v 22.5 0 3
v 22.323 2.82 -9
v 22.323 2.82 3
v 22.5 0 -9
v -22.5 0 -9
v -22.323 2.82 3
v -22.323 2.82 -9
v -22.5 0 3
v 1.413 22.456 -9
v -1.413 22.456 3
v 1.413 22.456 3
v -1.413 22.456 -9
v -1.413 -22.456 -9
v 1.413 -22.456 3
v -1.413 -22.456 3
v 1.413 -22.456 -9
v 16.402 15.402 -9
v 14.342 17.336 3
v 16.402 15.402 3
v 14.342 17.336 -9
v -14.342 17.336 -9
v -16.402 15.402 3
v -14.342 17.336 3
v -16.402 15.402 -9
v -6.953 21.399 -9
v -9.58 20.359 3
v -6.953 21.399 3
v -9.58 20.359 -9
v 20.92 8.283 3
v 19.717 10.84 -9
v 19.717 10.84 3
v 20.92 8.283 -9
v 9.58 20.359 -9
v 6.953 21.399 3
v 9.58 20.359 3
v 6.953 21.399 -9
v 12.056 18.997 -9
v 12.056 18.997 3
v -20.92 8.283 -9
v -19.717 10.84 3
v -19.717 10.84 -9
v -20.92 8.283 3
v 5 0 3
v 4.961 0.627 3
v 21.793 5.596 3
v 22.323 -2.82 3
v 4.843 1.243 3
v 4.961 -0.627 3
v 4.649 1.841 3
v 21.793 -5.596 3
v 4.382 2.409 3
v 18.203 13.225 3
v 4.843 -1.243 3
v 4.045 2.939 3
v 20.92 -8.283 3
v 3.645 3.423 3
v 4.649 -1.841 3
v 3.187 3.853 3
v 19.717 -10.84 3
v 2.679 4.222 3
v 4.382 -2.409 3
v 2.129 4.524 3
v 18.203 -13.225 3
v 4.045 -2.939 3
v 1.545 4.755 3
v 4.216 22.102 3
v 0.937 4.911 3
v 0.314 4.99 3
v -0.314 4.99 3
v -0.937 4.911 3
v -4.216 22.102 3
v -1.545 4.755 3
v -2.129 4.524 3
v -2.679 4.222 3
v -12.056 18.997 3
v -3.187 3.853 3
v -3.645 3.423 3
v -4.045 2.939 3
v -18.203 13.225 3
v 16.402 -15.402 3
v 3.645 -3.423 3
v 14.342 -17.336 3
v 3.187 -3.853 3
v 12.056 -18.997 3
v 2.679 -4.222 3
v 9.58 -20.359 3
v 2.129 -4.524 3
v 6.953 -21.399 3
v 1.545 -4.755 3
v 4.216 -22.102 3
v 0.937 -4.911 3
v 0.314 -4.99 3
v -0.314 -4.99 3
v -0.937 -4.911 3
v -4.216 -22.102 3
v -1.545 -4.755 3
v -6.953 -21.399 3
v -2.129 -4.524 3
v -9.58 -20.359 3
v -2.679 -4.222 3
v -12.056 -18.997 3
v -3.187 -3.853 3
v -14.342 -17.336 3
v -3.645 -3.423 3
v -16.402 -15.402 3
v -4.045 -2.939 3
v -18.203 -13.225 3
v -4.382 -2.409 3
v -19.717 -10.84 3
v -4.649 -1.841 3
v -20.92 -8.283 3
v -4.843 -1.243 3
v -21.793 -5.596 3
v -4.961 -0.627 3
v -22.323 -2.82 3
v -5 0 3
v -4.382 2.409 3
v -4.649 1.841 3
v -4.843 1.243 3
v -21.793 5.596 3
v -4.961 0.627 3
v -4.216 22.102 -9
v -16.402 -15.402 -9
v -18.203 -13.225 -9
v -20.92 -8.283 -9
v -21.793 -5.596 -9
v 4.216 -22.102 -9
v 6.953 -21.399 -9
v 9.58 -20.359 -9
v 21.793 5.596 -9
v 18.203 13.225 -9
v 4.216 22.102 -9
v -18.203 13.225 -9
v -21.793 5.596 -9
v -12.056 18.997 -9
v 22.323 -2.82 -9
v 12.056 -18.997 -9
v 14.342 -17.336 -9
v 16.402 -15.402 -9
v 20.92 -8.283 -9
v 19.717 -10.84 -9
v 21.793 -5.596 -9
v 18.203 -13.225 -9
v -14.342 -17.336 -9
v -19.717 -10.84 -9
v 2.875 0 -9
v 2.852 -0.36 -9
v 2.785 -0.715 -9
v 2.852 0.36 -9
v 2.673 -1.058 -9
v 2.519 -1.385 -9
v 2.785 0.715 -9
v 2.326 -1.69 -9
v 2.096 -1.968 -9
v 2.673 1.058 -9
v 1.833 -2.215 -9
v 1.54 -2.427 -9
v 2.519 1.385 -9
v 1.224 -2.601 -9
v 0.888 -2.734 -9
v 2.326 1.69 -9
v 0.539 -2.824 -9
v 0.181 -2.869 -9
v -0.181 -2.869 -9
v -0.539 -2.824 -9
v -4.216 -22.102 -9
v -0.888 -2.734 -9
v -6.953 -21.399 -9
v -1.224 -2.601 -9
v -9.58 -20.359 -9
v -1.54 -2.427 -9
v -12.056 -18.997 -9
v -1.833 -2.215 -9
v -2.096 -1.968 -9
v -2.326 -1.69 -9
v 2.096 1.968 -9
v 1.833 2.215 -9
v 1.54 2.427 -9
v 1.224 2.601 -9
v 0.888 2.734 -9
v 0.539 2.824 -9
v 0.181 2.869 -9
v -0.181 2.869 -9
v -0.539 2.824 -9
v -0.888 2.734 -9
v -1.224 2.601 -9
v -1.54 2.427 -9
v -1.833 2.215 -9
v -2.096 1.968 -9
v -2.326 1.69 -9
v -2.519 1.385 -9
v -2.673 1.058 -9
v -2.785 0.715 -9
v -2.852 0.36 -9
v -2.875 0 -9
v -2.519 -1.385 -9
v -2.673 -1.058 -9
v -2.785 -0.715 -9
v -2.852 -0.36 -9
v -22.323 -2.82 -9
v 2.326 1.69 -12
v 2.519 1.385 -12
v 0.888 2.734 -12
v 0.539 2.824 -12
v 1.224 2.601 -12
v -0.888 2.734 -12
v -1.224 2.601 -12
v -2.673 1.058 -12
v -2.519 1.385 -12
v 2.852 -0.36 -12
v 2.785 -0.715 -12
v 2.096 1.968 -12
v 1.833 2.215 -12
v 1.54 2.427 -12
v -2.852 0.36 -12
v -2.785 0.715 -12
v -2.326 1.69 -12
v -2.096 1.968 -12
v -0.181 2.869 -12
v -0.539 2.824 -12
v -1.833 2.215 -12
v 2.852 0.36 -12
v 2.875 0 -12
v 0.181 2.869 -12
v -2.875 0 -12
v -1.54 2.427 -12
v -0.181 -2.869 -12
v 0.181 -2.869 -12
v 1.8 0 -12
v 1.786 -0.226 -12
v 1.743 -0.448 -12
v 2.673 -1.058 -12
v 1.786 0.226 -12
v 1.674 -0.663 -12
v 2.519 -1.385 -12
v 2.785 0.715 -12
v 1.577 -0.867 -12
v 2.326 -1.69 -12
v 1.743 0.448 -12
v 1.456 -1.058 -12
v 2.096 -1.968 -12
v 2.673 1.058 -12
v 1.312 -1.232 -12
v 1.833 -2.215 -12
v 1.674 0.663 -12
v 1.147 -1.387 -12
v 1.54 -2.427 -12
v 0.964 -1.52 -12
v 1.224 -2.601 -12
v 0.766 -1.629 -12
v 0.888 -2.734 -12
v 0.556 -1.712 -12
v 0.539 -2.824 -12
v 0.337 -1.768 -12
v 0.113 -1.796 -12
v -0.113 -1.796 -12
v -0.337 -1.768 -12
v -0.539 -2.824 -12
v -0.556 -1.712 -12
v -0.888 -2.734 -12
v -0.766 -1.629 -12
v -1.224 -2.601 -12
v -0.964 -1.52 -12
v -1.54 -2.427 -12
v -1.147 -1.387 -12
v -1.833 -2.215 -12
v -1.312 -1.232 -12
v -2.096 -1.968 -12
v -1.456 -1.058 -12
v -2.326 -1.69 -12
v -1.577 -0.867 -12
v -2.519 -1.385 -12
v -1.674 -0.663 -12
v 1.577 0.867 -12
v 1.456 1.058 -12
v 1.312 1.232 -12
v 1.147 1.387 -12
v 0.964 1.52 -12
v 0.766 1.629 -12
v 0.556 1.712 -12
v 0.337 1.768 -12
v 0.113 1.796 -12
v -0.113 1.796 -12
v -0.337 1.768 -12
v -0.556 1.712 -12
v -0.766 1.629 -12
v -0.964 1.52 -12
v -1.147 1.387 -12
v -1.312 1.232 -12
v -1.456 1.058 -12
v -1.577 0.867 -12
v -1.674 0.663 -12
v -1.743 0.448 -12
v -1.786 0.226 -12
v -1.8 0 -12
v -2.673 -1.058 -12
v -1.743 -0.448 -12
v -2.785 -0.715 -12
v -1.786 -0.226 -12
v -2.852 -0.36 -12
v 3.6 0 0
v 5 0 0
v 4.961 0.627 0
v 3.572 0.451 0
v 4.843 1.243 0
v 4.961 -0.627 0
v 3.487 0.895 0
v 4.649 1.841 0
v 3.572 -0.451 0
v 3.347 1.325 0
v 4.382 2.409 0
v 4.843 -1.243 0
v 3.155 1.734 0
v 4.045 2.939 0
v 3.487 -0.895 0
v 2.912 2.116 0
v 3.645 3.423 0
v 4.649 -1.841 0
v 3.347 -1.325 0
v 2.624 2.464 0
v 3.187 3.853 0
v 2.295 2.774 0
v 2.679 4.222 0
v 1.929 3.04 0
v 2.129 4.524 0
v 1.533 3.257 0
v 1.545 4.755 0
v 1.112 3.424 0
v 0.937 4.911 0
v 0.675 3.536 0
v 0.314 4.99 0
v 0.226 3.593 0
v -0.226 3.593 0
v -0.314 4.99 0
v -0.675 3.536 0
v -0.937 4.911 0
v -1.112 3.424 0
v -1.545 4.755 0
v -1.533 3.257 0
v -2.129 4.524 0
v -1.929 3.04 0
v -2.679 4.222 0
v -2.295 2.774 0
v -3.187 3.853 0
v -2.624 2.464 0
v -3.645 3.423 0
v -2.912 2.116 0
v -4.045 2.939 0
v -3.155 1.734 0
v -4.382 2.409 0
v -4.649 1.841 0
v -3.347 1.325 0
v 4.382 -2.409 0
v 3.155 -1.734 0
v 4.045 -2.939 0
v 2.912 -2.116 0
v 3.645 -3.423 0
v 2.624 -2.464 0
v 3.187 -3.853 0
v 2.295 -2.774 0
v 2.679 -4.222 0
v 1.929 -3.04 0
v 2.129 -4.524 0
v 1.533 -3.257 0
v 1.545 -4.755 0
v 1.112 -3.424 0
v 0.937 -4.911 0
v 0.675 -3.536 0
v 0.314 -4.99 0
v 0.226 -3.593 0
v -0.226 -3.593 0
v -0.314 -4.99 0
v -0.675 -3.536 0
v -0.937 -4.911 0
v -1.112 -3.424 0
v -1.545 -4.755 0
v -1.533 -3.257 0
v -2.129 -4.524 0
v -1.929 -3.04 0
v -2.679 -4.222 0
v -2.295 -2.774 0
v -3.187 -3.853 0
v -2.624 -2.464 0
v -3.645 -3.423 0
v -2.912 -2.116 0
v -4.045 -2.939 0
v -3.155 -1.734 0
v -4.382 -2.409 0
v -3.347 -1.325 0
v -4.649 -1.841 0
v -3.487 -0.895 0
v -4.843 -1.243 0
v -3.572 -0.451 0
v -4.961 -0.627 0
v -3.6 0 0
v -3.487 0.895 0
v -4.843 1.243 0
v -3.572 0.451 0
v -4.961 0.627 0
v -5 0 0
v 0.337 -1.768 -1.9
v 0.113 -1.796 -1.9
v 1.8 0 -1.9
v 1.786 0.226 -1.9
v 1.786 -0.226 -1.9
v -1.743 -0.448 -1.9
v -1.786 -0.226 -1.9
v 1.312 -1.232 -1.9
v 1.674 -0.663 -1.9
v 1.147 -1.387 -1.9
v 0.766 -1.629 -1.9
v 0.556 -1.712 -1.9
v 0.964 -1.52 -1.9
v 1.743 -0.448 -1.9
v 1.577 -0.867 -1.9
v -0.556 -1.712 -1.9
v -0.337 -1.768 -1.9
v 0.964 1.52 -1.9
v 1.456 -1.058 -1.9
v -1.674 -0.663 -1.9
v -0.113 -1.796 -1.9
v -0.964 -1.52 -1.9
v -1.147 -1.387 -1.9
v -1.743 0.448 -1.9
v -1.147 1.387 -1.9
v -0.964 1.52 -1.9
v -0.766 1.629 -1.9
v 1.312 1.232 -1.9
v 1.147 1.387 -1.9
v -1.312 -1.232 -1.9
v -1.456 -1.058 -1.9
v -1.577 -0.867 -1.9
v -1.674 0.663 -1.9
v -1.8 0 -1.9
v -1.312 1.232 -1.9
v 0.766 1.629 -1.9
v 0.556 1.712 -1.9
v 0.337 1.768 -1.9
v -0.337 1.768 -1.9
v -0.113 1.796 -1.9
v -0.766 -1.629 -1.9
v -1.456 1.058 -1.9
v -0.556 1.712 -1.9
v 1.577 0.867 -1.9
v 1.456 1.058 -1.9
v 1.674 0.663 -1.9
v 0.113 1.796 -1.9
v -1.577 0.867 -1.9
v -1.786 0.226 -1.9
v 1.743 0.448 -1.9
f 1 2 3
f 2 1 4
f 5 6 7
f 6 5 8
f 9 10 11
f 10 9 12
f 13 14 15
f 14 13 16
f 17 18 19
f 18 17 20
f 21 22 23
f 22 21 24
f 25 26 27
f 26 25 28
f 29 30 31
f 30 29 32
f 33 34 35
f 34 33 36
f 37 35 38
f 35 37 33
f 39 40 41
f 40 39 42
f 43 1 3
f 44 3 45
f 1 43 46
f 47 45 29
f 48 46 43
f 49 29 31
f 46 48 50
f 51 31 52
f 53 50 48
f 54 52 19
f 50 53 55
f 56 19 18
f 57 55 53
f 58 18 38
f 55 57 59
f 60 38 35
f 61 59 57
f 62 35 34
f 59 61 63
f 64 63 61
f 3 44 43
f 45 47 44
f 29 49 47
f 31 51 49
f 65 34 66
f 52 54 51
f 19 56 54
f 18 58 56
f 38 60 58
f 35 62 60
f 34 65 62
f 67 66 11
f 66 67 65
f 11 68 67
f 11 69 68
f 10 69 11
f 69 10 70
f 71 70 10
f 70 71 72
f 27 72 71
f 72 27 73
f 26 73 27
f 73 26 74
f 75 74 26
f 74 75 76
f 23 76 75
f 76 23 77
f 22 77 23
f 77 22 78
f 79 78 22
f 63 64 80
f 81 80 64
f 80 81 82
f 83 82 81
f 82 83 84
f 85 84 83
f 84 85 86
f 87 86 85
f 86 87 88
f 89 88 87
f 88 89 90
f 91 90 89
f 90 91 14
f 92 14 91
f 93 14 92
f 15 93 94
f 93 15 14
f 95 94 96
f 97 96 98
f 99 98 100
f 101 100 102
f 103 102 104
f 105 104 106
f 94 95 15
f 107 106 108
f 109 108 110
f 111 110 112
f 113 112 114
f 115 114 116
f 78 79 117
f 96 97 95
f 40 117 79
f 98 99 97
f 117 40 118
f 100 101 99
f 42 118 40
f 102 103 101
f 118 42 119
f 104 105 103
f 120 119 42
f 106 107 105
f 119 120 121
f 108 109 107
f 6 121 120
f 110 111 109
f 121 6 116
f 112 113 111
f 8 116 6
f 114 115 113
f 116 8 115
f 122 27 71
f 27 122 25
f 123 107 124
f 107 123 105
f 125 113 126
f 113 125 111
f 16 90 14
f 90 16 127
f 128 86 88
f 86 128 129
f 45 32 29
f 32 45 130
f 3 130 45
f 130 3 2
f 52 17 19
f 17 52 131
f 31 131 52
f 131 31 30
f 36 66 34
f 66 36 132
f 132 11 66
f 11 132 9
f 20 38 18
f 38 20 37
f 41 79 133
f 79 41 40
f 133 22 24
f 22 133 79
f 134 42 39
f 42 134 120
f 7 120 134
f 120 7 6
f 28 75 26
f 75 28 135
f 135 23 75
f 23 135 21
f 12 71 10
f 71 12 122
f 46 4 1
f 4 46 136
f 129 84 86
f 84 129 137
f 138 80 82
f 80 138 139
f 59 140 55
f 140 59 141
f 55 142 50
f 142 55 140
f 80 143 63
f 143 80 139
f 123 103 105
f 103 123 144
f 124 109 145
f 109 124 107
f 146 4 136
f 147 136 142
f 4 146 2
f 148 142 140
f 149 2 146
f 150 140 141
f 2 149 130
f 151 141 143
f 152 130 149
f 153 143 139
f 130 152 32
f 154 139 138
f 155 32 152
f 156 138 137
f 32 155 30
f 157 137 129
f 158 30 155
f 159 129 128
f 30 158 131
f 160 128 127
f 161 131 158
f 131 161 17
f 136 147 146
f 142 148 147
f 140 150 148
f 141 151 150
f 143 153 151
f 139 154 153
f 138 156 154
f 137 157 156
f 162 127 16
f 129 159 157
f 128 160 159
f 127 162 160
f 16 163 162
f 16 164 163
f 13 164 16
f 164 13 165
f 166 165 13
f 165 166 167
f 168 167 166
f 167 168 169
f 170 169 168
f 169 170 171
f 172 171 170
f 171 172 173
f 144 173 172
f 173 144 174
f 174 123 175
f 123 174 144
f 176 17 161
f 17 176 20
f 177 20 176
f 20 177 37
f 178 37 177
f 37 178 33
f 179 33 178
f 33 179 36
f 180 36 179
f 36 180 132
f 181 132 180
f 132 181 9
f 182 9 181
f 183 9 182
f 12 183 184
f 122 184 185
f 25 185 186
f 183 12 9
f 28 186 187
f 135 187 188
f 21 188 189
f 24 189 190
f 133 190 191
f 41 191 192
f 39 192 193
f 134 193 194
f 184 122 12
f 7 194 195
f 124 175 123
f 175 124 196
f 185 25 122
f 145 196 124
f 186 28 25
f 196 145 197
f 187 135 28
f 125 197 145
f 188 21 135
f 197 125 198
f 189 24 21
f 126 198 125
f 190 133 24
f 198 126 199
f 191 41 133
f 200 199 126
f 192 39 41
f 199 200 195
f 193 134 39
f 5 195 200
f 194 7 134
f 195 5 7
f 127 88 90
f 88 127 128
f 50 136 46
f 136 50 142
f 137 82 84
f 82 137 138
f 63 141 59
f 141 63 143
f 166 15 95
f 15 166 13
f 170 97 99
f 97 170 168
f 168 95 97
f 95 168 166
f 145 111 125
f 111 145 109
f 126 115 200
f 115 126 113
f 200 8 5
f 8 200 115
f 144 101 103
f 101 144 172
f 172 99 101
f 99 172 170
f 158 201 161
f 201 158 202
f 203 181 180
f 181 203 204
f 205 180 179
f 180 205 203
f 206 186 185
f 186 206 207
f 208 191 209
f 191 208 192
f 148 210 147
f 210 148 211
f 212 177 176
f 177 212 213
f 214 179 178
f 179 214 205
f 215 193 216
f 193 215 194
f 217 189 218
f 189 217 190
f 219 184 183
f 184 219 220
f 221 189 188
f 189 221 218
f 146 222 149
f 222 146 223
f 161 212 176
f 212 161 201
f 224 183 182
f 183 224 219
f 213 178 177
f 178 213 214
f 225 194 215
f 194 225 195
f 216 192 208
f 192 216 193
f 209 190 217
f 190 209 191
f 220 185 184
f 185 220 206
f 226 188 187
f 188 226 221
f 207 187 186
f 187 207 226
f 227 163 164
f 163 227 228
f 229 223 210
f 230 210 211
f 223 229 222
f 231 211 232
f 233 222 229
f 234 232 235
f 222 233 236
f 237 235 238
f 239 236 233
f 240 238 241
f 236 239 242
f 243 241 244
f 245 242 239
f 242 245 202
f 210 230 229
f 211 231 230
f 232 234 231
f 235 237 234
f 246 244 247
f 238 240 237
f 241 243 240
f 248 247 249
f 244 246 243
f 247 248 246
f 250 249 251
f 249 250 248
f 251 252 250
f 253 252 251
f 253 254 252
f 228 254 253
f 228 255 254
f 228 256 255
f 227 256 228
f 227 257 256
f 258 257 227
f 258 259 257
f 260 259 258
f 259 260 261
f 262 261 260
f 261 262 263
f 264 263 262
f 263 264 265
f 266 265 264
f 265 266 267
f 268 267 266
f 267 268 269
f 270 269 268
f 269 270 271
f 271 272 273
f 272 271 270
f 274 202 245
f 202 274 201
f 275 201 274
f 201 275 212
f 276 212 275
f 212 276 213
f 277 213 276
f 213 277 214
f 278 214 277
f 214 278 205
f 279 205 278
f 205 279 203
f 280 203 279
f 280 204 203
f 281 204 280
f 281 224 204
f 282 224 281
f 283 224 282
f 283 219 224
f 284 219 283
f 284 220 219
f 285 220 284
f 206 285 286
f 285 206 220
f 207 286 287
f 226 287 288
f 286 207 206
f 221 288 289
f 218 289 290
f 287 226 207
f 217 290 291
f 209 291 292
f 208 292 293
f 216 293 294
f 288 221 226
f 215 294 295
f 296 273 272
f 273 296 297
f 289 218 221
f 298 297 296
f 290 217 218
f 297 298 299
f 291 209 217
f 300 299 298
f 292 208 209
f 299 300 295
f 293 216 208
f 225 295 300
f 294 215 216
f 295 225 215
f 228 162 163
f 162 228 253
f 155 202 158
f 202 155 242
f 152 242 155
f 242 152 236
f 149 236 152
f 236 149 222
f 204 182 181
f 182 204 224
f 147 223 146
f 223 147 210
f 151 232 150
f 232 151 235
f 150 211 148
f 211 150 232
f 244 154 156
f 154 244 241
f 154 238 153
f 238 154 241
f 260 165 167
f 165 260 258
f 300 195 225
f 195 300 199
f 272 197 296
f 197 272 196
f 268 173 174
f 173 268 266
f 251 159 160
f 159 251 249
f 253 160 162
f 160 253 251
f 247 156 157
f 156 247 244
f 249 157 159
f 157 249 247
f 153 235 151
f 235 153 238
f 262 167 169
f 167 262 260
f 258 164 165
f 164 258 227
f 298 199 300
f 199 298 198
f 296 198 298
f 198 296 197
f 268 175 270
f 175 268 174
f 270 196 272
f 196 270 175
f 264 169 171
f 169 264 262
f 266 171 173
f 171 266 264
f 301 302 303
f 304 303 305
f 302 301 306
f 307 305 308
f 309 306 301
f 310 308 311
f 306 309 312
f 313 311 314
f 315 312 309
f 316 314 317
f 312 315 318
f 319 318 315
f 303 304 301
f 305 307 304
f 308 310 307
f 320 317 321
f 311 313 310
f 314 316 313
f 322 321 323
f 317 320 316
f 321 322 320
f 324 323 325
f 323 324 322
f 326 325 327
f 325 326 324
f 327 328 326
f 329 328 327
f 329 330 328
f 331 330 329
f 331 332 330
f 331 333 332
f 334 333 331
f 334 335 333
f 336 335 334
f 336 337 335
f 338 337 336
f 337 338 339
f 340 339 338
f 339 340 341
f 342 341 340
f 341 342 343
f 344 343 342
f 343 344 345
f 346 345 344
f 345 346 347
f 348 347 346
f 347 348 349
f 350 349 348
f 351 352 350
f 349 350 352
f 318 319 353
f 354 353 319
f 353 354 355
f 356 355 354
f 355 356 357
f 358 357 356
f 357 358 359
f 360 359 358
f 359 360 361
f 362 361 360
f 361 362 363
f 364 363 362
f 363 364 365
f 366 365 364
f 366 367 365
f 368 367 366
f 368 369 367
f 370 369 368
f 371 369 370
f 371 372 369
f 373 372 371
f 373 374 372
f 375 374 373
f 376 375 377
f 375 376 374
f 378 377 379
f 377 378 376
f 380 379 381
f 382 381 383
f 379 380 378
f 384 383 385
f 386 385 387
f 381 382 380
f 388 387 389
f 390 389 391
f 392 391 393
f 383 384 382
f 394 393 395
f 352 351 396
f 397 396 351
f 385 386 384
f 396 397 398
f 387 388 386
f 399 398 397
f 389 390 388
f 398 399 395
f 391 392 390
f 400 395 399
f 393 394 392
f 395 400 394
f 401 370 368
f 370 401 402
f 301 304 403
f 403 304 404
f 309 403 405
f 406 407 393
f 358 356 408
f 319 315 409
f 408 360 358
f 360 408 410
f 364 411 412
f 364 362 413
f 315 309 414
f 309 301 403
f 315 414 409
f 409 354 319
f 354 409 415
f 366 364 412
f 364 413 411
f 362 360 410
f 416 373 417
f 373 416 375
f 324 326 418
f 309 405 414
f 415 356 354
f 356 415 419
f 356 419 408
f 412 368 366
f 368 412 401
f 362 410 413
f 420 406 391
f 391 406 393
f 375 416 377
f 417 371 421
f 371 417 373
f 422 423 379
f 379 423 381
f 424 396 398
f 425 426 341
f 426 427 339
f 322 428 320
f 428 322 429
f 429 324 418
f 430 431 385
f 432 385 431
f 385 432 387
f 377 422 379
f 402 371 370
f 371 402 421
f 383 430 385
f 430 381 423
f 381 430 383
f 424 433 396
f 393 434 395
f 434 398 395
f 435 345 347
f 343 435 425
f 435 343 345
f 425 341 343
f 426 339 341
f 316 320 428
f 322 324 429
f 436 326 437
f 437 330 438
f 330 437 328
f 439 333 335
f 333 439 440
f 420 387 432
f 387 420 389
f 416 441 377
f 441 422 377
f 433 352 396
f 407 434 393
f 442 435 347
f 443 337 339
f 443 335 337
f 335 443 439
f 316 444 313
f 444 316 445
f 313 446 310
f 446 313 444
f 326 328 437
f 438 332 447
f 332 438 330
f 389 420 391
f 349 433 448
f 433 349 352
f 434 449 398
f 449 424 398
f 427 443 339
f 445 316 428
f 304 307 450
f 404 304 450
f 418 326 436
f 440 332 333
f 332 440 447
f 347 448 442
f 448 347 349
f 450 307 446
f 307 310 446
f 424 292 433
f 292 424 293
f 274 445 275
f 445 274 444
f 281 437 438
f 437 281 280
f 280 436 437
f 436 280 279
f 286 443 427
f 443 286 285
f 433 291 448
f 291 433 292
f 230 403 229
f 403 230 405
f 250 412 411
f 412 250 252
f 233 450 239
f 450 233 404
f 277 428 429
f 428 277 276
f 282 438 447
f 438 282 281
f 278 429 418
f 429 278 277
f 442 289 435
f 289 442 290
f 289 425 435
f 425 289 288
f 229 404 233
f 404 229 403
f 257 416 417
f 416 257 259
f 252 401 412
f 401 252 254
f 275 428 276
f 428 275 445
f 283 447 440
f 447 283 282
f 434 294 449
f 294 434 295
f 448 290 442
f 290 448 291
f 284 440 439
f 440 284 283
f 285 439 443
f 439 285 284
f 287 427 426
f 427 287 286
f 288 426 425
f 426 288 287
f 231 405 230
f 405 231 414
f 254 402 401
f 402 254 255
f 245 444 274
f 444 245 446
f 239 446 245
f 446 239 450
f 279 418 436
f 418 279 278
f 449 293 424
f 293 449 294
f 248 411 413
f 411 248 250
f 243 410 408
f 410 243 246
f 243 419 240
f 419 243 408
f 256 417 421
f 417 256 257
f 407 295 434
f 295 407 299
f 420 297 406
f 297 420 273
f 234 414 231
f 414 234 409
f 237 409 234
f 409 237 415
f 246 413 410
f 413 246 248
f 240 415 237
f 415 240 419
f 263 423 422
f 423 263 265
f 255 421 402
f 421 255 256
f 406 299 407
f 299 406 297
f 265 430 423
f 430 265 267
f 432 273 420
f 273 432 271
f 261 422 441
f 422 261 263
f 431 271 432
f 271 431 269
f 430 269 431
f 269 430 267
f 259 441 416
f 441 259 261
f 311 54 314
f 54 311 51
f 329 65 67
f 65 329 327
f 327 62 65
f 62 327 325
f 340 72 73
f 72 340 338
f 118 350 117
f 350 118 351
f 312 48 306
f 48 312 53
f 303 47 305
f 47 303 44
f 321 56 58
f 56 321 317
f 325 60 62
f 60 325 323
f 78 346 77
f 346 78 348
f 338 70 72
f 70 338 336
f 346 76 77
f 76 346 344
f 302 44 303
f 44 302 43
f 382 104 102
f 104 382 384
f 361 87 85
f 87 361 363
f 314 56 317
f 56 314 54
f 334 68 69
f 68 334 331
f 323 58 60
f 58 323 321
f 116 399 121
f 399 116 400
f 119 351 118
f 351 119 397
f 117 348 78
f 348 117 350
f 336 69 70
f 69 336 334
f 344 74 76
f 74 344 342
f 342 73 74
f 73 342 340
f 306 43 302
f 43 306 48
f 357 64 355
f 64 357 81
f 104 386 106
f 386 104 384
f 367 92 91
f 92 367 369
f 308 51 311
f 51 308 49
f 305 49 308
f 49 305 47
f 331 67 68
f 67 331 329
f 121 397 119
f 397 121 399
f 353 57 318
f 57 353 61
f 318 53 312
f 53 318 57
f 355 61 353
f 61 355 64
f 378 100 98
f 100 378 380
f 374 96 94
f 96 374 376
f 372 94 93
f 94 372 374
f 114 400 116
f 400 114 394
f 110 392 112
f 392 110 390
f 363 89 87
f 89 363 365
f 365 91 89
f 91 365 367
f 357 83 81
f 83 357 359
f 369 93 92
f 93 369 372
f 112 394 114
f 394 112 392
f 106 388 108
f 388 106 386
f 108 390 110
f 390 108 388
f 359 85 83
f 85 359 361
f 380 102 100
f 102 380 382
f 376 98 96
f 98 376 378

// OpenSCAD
$fn = 50;


difference() {
	union() {
		translate(v = [0, 0, -9.0000000000]) {
			cylinder(h = 12, r = 22.5000000000);
		}
		#translate(v = [0, 0, -12.0000000000]) {
			cylinder(h = 12, r = 2.8750000000);
		}
	}
	union() {
		translate(v = [0, 0, 0]) {
			rotate(a = [0, 0, 0]) {
				difference() {
					union() {
						translate(v = [0, 0, -12.0000000000]) {
							cylinder(h = 12, r = 1.5000000000);
						}
						translate(v = [0, 0, -1.9000000000]) {
							cylinder(h = 1.9000000000, r1 = 1.8000000000, r2 = 3.6000000000);
						}
						translate(v = [0, 0, -12.0000000000]) {
							cylinder(h = 12, r = 1.8000000000);
						}
						translate(v = [0, 0, -12.0000000000]) {
							cylinder(h = 12, r = 1.5000000000);
						}
					}
					union();
				}
			}
		}
		#cylinder(h = 3, r = 5.0000000000);
	}
}
